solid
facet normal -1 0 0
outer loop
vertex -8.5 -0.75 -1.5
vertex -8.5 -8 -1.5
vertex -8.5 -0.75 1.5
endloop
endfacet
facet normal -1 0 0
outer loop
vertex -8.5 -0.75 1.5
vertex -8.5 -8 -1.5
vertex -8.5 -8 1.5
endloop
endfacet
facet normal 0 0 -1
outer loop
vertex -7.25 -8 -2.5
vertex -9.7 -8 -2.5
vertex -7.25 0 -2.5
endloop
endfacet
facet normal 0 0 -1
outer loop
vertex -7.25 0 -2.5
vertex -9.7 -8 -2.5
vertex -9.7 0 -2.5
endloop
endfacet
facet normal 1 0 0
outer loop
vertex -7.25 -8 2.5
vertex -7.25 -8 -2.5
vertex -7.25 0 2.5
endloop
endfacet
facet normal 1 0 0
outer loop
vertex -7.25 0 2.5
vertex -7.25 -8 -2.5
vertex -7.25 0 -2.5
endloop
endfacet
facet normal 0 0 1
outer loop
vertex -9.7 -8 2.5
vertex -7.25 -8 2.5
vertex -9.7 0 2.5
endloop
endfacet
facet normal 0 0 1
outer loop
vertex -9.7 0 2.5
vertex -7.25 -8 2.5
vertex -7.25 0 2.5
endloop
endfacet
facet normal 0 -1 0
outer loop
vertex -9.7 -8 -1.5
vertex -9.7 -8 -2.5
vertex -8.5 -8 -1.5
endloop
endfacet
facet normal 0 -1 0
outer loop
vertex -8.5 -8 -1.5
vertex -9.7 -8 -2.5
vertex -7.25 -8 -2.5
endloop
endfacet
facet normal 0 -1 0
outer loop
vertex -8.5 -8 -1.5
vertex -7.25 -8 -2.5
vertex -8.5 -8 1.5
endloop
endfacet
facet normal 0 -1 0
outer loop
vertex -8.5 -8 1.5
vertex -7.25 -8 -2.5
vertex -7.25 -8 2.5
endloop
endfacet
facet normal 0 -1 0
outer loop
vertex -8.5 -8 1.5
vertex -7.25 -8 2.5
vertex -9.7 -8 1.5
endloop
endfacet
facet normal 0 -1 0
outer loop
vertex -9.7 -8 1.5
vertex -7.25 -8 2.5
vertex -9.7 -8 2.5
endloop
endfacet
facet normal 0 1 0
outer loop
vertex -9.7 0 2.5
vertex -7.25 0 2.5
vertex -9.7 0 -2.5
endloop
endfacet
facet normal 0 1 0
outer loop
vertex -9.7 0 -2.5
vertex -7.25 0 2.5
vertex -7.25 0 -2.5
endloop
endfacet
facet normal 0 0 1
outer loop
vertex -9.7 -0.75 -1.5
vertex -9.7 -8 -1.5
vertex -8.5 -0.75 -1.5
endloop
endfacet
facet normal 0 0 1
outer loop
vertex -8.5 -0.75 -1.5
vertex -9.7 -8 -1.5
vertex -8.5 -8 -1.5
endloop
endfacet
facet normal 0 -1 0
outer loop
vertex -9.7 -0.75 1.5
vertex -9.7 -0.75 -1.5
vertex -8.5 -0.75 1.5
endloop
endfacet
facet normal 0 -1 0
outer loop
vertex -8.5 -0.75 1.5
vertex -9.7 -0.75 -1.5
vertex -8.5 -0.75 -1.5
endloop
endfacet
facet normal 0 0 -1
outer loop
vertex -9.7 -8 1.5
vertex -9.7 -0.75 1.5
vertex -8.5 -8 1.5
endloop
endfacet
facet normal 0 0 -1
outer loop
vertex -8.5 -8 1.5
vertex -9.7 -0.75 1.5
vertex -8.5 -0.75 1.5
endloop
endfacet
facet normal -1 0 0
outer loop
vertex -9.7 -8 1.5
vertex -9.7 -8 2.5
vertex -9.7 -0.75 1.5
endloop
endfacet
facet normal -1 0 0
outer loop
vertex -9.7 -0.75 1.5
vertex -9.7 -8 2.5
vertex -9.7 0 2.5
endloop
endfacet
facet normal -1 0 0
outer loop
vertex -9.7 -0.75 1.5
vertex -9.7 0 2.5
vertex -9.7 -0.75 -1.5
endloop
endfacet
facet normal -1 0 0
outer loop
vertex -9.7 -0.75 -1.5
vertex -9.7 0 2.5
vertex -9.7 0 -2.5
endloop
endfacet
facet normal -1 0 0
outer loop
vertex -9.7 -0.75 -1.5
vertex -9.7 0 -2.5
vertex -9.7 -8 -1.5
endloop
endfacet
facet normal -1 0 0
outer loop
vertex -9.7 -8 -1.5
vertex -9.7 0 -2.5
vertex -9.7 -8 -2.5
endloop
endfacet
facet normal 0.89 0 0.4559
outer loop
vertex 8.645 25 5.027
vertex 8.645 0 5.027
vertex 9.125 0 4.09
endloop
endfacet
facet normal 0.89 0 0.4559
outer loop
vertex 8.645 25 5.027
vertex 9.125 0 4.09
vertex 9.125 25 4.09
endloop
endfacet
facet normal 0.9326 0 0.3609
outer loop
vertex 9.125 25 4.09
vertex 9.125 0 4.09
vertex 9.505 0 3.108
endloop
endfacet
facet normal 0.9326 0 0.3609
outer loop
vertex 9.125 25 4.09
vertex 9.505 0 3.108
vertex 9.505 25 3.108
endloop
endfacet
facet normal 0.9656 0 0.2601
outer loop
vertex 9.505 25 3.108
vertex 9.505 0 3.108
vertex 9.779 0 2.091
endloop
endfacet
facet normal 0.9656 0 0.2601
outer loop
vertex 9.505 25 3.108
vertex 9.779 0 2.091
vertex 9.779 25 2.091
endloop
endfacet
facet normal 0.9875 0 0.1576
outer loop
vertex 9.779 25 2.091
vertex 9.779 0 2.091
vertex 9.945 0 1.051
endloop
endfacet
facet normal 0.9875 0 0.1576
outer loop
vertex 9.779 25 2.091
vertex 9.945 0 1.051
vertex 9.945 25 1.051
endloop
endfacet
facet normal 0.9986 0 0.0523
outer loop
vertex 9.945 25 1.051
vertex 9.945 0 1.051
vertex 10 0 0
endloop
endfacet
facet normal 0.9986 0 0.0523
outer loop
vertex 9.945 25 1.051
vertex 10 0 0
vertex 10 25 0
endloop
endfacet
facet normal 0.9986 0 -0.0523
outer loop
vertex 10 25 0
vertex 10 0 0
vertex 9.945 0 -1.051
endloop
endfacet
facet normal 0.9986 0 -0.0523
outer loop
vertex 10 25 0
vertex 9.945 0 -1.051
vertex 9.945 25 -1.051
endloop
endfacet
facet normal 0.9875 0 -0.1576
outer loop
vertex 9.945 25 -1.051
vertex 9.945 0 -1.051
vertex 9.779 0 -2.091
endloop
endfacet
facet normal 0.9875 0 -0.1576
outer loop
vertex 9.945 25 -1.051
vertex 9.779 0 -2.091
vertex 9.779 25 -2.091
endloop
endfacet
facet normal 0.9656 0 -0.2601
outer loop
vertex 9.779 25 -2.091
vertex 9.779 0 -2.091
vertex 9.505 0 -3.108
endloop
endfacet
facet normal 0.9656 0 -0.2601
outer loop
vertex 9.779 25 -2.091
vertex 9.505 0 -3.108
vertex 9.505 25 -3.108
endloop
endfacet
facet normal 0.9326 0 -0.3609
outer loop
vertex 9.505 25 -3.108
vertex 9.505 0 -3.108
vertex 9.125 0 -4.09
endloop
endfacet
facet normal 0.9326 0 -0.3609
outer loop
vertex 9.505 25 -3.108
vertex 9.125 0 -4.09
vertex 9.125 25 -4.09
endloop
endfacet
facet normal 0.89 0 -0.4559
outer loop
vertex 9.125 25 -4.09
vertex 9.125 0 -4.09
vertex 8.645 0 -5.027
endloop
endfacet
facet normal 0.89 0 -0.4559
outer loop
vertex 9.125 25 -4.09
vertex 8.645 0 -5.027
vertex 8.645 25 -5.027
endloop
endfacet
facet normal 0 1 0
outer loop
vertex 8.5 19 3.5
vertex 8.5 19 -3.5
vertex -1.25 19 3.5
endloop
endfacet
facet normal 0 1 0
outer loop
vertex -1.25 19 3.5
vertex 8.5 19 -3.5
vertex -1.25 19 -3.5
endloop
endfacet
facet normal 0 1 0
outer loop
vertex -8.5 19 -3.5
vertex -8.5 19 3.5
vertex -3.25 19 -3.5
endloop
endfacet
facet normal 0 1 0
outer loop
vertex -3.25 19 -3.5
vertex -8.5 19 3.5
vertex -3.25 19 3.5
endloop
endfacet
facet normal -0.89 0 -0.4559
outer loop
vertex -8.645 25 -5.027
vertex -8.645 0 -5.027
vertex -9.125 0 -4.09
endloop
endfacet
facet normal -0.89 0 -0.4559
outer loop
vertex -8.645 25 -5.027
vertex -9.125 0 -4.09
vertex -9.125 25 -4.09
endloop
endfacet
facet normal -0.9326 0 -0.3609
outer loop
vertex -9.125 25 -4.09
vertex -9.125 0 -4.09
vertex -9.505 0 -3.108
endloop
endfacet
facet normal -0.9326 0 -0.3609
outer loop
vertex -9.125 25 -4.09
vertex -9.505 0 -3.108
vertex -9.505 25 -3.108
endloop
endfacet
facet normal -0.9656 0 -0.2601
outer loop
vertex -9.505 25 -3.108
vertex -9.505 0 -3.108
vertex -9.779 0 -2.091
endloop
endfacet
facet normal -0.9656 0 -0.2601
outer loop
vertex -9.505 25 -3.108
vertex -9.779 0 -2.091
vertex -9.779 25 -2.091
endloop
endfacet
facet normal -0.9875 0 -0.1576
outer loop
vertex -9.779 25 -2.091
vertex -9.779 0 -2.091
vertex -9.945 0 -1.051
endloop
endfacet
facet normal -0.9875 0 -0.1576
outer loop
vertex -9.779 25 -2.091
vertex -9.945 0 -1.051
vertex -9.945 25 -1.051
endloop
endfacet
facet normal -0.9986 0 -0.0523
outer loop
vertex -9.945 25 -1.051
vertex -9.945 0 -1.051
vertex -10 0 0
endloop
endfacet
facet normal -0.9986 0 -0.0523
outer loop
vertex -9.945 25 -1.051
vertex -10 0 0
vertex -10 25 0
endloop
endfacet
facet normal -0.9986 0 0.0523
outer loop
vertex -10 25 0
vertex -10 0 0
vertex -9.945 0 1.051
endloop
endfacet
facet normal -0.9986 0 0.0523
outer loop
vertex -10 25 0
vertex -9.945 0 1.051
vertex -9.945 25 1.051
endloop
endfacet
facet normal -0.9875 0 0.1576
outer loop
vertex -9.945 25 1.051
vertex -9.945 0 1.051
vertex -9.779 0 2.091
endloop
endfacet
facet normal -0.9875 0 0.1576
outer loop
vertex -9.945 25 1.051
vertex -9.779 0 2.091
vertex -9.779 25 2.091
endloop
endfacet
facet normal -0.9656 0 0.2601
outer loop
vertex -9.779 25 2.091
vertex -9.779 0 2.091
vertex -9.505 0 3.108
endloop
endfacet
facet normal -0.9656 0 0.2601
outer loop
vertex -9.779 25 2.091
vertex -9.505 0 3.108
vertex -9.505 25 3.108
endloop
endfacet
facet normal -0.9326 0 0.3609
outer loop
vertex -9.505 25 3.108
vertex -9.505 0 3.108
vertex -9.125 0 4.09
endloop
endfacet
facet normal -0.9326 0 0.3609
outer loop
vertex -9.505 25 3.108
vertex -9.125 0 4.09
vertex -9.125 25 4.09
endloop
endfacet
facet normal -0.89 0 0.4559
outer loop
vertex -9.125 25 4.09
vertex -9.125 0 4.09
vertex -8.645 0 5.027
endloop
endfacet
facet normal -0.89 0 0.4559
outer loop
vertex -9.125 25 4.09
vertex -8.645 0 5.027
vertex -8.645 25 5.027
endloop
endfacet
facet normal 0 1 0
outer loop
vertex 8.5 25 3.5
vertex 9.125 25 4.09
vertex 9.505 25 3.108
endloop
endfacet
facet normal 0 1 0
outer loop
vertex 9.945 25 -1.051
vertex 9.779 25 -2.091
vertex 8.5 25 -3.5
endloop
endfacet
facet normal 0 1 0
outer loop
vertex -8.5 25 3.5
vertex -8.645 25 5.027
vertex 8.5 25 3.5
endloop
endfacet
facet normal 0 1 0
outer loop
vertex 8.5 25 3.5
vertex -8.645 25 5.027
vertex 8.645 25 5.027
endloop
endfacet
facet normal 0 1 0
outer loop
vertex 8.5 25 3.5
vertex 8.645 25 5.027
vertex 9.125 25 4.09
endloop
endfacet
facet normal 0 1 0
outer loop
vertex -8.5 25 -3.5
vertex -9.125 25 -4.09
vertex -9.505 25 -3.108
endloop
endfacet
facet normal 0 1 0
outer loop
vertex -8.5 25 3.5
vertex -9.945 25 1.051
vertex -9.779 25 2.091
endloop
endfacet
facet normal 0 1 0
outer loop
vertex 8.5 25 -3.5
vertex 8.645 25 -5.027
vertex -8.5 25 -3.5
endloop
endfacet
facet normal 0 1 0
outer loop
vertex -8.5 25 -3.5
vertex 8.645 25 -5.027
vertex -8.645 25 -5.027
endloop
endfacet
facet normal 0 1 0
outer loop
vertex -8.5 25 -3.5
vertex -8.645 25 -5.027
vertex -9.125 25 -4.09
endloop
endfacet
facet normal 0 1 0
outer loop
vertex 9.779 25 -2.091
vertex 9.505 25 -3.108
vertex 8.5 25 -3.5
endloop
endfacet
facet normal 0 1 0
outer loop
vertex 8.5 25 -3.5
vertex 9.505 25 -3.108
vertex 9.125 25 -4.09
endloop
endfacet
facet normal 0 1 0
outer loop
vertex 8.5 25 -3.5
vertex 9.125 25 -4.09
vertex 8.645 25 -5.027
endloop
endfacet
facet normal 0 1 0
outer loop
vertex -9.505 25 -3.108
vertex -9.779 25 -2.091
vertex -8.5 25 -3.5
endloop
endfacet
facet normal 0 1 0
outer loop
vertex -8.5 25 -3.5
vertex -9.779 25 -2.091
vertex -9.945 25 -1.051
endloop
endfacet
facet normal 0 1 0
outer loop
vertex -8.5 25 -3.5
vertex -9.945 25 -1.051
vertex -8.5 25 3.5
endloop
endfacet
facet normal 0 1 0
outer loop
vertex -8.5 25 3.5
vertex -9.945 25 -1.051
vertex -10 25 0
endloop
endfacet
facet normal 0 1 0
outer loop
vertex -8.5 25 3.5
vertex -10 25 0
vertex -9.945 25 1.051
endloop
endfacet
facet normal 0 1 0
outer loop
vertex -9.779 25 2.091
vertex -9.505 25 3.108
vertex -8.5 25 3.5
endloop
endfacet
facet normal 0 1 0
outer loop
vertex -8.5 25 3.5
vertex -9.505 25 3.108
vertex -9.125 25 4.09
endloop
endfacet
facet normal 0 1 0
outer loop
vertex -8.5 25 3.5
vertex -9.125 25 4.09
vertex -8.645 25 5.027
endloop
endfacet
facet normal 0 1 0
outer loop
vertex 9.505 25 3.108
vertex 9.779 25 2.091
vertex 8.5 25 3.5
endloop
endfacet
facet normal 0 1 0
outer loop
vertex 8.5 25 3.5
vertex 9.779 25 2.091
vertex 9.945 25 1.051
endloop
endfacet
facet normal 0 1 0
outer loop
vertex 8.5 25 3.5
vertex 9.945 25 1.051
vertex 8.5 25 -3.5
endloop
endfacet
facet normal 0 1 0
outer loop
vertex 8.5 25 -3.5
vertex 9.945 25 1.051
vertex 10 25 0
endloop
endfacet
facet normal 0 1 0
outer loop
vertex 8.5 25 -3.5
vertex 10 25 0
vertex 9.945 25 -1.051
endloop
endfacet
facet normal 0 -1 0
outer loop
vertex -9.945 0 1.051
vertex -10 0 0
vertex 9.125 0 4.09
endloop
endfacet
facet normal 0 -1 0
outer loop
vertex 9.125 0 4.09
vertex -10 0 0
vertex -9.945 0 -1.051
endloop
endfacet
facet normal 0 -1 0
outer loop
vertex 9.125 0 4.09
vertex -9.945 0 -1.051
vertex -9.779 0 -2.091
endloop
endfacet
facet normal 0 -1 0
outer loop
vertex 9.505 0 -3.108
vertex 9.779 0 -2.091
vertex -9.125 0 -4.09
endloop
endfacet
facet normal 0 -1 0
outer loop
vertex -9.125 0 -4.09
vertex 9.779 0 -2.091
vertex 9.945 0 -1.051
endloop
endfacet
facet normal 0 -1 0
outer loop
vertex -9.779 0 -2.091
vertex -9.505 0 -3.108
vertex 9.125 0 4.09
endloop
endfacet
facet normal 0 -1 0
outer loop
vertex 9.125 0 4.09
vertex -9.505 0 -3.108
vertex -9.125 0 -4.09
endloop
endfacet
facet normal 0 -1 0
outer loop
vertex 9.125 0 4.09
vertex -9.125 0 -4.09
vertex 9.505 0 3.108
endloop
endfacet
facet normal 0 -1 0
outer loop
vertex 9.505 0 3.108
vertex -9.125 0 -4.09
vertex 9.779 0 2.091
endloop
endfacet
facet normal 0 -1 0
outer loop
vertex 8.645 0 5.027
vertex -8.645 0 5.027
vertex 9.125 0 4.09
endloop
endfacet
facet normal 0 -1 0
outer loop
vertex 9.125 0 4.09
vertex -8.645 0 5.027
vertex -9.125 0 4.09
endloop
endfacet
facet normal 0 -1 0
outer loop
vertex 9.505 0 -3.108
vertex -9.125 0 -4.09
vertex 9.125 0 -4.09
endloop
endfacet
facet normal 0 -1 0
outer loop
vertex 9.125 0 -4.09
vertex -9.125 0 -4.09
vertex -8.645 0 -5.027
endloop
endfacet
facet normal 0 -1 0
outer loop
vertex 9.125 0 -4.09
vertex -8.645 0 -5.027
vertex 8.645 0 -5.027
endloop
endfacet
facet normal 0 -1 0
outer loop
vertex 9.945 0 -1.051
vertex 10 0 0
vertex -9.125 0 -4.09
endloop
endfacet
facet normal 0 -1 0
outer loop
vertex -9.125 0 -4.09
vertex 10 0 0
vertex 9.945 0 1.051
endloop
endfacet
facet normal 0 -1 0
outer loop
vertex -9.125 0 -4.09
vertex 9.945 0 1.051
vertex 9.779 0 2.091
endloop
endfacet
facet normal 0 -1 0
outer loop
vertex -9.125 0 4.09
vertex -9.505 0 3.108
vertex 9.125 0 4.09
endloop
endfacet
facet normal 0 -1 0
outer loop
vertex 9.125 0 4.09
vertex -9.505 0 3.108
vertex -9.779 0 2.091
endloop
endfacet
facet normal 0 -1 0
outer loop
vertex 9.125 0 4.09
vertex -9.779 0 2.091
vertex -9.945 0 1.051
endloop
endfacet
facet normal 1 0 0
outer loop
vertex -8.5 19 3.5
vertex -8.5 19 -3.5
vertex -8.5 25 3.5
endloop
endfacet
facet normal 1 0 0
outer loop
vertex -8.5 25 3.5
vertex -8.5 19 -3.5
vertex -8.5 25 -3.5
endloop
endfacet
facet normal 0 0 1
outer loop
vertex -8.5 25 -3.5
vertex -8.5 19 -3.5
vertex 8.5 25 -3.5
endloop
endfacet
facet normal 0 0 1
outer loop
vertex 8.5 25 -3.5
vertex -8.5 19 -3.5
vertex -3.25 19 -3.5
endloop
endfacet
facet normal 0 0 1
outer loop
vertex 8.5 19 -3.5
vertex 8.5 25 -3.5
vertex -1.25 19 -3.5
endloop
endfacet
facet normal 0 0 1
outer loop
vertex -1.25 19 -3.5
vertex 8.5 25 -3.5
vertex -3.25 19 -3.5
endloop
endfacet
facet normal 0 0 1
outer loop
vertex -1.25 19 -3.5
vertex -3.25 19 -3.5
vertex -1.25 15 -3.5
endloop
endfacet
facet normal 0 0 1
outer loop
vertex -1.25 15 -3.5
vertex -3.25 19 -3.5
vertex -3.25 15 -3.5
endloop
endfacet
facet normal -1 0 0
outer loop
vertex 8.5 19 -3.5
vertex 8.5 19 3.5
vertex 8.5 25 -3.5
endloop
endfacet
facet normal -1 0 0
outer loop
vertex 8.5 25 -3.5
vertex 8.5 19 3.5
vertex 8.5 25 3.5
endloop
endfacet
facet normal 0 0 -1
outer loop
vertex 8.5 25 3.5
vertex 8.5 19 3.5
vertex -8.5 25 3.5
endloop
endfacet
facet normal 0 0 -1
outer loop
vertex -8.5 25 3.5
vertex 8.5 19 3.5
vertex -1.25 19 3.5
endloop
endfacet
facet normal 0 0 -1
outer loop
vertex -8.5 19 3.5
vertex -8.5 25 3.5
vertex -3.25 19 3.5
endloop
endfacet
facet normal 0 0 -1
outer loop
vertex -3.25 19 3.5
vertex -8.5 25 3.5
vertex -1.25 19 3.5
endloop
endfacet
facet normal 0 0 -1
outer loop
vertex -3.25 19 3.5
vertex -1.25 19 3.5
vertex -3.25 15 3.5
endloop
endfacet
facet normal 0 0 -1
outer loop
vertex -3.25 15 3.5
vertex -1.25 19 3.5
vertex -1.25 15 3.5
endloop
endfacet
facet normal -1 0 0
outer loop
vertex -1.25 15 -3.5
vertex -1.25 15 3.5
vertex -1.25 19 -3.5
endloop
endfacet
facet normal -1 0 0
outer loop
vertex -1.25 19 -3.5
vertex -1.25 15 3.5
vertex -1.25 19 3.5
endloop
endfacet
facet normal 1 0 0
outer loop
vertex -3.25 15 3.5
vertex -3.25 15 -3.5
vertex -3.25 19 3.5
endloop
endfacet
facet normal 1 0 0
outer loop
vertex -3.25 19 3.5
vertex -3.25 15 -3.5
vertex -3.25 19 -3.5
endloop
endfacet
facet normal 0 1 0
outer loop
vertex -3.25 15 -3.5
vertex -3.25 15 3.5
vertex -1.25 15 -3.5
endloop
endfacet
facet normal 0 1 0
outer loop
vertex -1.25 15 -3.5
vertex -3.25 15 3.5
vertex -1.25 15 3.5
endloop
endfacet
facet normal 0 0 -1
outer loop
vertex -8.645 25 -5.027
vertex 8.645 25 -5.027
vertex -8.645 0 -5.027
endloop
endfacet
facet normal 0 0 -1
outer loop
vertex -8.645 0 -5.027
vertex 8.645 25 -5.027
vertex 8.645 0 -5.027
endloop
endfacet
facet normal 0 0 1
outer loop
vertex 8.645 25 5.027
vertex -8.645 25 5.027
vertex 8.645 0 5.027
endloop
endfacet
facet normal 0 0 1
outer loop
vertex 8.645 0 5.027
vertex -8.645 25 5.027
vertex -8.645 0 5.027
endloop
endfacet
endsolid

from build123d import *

# Parameters (mm, degrees)
SKETCH1_R           = 10
BOSS_EXTRUDE1_DEPTH = 25
SKETCH2_W           = 1.25
SKETCH2_H           = 5
BOSS_EXTRUDE2_DEPTH = 8
BOSS_EXTRUDE3_DEPTH = 1.2
SKETCH4_W           = 17
SKETCH4_H           = 7
CUT_EXTRUDE1_DEPTH  = 6
SKETCH5_W           = 2
SKETCH5_H           = 7
CUT_EXTRUDE2_DEPTH  = 4
CUT_EXTRUDE3_DEPTH  = 25


with BuildPart() as part:
    # Sketch1 → Boss-Extrude1 (new body)
    with BuildSketch(Plane(origin=(0, 0, 0), x_dir=(1, 0, 0), z_dir=(0, 1, 0))):
        with Locations(Location((0, 0, 0), (0, 0, 270))):
            Circle(SKETCH1_R)
    extrude(amount=BOSS_EXTRUDE1_DEPTH)

    # Sketch4 → Cut-Extrude1 (cut)
    with BuildSketch(Plane(origin=(0, 25, 0), x_dir=(1, 0, 0), z_dir=(0, 1, 0))):
        Rectangle(SKETCH4_W, SKETCH4_H)
    extrude(amount=-CUT_EXTRUDE1_DEPTH, mode=Mode.SUBTRACT)

    # Sketch5 → Cut-Extrude2 (cut)
    with BuildSketch(Plane(origin=(0, 19, 0), x_dir=(1, 0, 0), z_dir=(0, 1, 0))):
        with Locations((-2.25, 0)):
            Rectangle(SKETCH5_W, SKETCH5_H)
    extrude(amount=-CUT_EXTRUDE2_DEPTH, mode=Mode.SUBTRACT)

    # Sketch6 → Cut-Extrude3 (cut)
    with BuildSketch(Plane.XZ):
        with BuildLine():
            Line((-8.644632716, 5.026959838), (8.644632716, 5.026959838))
            ThreePointArc((8.644632716, 5.026959838), (0, 10), (-8.644632716, 5.026959838))
        make_face()
        with BuildLine():
            Line((-8.644632716, -5.026959838), (8.644632716, -5.026959838))
            ThreePointArc((8.644632716, -5.026959838), (0, -10), (-8.644632716, -5.026959838))
        make_face()
    extrude(amount=-CUT_EXTRUDE3_DEPTH, mode=Mode.SUBTRACT)


with BuildPart() as body_2:
    # Sketch2 → Boss-Extrude2 (new body)
    with BuildSketch(Plane(origin=(0, 0, 0), x_dir=(-1, 0, 0), z_dir=(0, -1, 0))):
        with Locations((7.875, 0)):
            Rectangle(SKETCH2_W, SKETCH2_H)
    extrude(amount=BOSS_EXTRUDE2_DEPTH)

    # Sketch3 → Boss-Extrude3 (add)
    with BuildSketch(Plane.ZY.offset(8.5)):
        Polygon((-2.5, -8), (-2.5, 0), (2.5, 0), (2.5, -8), (1.5, -8), (1.5, -0.75), (-1.5, -0.75), (-1.5, -8), align=None)
    extrude(amount=BOSS_EXTRUDE3_DEPTH)


solid = Compound([part.part, body_2.part])
